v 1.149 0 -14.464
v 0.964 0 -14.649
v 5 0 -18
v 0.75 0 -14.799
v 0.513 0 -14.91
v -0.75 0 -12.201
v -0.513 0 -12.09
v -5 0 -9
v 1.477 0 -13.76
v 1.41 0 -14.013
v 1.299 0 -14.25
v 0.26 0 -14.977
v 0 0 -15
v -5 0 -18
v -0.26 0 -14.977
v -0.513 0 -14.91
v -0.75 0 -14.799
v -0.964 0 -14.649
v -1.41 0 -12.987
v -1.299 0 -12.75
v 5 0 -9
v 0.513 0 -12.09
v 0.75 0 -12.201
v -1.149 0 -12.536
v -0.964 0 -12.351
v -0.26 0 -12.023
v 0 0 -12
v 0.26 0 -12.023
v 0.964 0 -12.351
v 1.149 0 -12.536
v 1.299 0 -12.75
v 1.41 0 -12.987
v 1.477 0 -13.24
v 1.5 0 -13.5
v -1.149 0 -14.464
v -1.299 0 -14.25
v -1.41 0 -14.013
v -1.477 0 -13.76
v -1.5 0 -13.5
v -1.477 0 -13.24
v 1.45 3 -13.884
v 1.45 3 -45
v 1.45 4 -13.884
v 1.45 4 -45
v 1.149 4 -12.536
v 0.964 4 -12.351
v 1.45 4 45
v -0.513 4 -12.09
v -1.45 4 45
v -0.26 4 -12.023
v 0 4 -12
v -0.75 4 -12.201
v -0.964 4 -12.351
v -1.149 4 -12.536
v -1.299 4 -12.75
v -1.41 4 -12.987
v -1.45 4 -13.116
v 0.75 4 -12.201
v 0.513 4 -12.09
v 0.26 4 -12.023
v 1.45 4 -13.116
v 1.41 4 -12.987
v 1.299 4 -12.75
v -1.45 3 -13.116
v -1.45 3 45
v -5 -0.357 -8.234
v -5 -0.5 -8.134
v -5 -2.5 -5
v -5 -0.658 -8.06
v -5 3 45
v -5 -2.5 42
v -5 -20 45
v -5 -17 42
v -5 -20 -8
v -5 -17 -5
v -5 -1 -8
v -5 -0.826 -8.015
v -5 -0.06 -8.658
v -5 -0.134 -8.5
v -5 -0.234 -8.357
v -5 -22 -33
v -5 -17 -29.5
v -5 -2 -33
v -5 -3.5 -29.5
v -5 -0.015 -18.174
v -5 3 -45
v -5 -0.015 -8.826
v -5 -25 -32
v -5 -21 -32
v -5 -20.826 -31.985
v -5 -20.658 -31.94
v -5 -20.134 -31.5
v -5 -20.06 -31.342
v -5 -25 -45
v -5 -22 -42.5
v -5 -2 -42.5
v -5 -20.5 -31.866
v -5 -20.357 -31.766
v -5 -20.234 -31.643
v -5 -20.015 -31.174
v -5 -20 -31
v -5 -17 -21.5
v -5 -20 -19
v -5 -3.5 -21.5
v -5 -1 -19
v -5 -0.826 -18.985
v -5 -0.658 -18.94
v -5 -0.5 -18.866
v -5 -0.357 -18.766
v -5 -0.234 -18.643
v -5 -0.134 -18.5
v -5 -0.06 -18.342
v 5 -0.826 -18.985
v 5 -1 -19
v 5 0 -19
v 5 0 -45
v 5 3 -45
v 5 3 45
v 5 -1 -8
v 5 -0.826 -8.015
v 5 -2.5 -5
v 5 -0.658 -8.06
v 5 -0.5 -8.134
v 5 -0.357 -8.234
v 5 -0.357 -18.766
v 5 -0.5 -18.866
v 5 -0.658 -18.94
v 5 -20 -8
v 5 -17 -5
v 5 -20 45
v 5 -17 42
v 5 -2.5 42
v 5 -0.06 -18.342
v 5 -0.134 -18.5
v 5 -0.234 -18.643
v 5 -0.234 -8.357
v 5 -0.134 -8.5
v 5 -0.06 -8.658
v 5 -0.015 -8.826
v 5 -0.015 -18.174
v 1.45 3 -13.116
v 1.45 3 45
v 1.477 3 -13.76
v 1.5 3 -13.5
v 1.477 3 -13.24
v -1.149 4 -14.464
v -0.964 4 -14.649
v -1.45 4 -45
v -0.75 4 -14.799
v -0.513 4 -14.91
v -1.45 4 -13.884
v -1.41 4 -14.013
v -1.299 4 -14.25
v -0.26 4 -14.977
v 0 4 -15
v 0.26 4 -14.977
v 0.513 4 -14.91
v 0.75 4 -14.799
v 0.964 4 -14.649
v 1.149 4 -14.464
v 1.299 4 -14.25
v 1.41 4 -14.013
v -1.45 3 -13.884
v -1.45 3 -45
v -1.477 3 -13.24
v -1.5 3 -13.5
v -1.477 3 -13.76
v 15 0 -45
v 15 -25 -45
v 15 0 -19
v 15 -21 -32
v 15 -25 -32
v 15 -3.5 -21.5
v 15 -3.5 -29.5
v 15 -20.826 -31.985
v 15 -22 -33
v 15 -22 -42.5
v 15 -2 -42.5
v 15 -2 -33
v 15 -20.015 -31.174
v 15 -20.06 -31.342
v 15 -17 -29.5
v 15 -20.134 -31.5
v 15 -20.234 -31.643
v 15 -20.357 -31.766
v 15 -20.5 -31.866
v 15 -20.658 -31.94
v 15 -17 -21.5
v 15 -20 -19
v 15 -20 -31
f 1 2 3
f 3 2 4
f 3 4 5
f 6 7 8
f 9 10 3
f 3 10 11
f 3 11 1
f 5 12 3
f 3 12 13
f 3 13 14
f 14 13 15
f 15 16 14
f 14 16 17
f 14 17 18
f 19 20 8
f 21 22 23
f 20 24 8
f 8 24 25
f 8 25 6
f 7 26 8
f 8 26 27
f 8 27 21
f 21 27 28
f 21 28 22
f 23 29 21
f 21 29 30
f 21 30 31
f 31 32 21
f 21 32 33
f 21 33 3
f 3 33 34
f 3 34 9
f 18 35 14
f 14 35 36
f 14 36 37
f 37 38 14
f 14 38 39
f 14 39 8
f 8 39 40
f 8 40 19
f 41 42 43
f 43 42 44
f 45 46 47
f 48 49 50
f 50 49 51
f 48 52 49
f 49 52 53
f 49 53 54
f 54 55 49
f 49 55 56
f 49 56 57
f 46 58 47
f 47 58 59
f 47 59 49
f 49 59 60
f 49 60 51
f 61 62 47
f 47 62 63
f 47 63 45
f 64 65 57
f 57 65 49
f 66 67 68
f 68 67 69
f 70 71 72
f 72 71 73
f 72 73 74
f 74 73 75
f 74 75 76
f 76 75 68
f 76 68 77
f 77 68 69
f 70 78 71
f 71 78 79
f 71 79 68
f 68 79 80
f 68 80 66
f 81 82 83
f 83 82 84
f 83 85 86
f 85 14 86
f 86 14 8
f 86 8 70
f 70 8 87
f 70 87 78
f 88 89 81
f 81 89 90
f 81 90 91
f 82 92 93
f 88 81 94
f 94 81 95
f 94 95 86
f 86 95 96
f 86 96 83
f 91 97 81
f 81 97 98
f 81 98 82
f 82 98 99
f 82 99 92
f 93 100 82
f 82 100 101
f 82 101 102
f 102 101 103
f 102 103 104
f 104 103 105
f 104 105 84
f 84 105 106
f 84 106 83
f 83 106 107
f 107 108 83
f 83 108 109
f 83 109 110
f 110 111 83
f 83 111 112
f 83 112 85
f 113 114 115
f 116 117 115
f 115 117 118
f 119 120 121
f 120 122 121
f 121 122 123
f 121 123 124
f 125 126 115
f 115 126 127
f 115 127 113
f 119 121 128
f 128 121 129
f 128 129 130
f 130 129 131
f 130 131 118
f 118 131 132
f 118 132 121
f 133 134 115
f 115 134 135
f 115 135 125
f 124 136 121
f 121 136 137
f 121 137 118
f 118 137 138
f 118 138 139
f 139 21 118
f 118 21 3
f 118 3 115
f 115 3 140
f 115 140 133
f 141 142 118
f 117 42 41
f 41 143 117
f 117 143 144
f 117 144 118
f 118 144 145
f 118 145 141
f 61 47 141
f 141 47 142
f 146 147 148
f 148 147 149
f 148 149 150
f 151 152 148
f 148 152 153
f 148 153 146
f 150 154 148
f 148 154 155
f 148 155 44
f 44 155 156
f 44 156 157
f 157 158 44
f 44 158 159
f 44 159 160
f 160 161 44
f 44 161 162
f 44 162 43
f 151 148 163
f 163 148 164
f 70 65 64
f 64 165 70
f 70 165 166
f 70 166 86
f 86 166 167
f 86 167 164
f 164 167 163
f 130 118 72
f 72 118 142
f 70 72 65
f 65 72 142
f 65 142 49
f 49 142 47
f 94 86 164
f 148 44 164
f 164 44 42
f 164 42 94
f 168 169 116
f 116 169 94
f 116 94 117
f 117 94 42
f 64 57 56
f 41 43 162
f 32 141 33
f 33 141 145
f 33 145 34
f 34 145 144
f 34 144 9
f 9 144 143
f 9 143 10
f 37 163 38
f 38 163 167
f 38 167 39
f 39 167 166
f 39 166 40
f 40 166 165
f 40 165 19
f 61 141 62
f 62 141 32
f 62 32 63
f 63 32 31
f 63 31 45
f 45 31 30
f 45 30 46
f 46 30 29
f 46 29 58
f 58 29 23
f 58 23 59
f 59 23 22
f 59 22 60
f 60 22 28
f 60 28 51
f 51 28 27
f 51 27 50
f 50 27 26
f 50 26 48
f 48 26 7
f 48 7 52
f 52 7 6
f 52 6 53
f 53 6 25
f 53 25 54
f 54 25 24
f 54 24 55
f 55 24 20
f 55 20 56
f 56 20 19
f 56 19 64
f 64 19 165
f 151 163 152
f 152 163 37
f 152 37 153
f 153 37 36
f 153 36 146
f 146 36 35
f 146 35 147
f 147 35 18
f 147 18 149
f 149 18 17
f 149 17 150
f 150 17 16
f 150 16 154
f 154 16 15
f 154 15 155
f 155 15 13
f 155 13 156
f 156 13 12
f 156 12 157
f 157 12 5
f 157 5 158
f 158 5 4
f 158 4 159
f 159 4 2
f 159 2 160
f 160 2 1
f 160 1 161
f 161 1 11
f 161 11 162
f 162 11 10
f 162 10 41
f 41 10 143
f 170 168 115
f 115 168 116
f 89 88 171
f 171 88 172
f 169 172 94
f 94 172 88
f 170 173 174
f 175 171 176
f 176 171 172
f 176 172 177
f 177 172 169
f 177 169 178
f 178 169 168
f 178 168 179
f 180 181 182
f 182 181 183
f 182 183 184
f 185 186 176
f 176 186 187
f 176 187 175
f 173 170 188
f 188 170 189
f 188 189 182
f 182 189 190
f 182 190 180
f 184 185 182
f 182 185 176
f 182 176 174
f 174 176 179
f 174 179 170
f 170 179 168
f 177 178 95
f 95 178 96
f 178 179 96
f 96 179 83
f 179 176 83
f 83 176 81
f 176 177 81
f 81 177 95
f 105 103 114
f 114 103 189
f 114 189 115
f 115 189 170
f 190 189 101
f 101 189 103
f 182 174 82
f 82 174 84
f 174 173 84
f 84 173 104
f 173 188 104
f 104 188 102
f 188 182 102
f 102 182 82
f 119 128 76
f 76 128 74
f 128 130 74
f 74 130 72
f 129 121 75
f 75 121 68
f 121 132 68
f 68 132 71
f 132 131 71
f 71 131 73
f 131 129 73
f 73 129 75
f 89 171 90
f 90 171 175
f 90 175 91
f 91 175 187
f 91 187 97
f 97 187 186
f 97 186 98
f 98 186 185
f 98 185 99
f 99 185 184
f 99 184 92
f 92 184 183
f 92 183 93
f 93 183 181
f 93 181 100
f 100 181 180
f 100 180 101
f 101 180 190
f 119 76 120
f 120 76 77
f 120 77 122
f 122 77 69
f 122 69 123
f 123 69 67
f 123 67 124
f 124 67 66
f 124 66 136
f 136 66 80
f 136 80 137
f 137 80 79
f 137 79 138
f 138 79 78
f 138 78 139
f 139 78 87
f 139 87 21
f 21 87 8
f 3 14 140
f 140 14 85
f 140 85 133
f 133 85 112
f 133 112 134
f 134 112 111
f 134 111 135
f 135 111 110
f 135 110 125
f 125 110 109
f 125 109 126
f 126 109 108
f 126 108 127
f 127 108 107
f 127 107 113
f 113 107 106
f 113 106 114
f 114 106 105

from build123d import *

# Parameters (mm, degrees)
MAKERBEAMFIX_DEPTH            = 45
SKETCH2_R                     = 1.5
MAKERBEAMFIXHOLE_DEPTH        = 5
SKETCH3_W                     = 13
SKETCH3_H                     = 25
SKETCH3_W_2                   = 9.5
SKETCH3_H_2                   = 20
MAKERBEAMTOOLPLATEPLIER_DEPTH = 20
SKETCH4_W                     = 13
SKETCH4_H                     = 20
SKETCH4_W_2                   = 8
SKETCH4_H_2                   = 13.5
MAKERBEAMTOOLCUTPLIER_DEPTH   = 20
SKETCH5_W                     = 53
SKETCH5_H                     = 20
SKETCH5_W_2                   = 47
SKETCH5_H_2                   = 14.5
BIGFACOMPLIER_DEPTH           = 10
FILLET1_R                     = 1


with BuildPart() as part:
    # Sketch1 → MakerBeamFix (new body, symmetric)
    with BuildSketch(Plane.XY):
        Polygon((-5, 0), (5, 0), (5, 3), (1.45, 3), (1.45, 4), (-1.45, 4), (-1.45, 3), (-5, 3), align=None)
    extrude(amount=MAKERBEAMFIX_DEPTH, both=True)

    # Sketch2 → MakerBeamFixHole (cut, through all)
    with BuildSketch(Plane(origin=(0, 0, 0), x_dir=(-1, 0, 0), z_dir=(0, -1, 0))):
        with Locations((0, 13.5)):
            Circle(SKETCH2_R)
    extrude(amount=-MAKERBEAMFIXHOLE_DEPTH, mode=Mode.SUBTRACT)

    # Sketch3 → MakerBeamToolPlatePlier (add)
    with BuildSketch(Plane.ZY.offset(5)):
        with Locations((-38.5, -12.5)):
            Rectangle(SKETCH3_W, SKETCH3_H)
        with Locations((-37.75, -12)):
            Rectangle(SKETCH3_W_2, SKETCH3_H_2, mode=Mode.SUBTRACT)
    extrude(amount=-MAKERBEAMTOOLPLATEPLIER_DEPTH)

    # Sketch4 → MakerBeamToolCutPlier (add)
    with BuildSketch(Plane.ZY.offset(5)):
        with Locations((-25.5, -10)):
            Rectangle(SKETCH4_W, SKETCH4_H)
        with Locations((-25.5, -10.25)):
            Rectangle(SKETCH4_W_2, SKETCH4_H_2, mode=Mode.SUBTRACT)
    extrude(amount=-MAKERBEAMTOOLCUTPLIER_DEPTH)

    # Sketch5 → BigFacomPlier (add)
    with BuildSketch(Plane.ZY.offset(5)):
        with Locations((18.5, -10)):
            Rectangle(SKETCH5_W, SKETCH5_H)
        with Locations((18.5, -9.75)):
            Rectangle(SKETCH5_W_2, SKETCH5_H_2, mode=Mode.SUBTRACT)
    extrude(amount=-BIGFACOMPLIER_DEPTH)

    # Fillet1
    fillet1_edges = [part.edges().sort_by_distance(p)[0] for p in [
        (0, 0, -19),
        (5, -20, -32),
        (0, 0, -8),
    ]]
    fillet(fillet1_edges, radius=FILLET1_R)


solid = part.part
